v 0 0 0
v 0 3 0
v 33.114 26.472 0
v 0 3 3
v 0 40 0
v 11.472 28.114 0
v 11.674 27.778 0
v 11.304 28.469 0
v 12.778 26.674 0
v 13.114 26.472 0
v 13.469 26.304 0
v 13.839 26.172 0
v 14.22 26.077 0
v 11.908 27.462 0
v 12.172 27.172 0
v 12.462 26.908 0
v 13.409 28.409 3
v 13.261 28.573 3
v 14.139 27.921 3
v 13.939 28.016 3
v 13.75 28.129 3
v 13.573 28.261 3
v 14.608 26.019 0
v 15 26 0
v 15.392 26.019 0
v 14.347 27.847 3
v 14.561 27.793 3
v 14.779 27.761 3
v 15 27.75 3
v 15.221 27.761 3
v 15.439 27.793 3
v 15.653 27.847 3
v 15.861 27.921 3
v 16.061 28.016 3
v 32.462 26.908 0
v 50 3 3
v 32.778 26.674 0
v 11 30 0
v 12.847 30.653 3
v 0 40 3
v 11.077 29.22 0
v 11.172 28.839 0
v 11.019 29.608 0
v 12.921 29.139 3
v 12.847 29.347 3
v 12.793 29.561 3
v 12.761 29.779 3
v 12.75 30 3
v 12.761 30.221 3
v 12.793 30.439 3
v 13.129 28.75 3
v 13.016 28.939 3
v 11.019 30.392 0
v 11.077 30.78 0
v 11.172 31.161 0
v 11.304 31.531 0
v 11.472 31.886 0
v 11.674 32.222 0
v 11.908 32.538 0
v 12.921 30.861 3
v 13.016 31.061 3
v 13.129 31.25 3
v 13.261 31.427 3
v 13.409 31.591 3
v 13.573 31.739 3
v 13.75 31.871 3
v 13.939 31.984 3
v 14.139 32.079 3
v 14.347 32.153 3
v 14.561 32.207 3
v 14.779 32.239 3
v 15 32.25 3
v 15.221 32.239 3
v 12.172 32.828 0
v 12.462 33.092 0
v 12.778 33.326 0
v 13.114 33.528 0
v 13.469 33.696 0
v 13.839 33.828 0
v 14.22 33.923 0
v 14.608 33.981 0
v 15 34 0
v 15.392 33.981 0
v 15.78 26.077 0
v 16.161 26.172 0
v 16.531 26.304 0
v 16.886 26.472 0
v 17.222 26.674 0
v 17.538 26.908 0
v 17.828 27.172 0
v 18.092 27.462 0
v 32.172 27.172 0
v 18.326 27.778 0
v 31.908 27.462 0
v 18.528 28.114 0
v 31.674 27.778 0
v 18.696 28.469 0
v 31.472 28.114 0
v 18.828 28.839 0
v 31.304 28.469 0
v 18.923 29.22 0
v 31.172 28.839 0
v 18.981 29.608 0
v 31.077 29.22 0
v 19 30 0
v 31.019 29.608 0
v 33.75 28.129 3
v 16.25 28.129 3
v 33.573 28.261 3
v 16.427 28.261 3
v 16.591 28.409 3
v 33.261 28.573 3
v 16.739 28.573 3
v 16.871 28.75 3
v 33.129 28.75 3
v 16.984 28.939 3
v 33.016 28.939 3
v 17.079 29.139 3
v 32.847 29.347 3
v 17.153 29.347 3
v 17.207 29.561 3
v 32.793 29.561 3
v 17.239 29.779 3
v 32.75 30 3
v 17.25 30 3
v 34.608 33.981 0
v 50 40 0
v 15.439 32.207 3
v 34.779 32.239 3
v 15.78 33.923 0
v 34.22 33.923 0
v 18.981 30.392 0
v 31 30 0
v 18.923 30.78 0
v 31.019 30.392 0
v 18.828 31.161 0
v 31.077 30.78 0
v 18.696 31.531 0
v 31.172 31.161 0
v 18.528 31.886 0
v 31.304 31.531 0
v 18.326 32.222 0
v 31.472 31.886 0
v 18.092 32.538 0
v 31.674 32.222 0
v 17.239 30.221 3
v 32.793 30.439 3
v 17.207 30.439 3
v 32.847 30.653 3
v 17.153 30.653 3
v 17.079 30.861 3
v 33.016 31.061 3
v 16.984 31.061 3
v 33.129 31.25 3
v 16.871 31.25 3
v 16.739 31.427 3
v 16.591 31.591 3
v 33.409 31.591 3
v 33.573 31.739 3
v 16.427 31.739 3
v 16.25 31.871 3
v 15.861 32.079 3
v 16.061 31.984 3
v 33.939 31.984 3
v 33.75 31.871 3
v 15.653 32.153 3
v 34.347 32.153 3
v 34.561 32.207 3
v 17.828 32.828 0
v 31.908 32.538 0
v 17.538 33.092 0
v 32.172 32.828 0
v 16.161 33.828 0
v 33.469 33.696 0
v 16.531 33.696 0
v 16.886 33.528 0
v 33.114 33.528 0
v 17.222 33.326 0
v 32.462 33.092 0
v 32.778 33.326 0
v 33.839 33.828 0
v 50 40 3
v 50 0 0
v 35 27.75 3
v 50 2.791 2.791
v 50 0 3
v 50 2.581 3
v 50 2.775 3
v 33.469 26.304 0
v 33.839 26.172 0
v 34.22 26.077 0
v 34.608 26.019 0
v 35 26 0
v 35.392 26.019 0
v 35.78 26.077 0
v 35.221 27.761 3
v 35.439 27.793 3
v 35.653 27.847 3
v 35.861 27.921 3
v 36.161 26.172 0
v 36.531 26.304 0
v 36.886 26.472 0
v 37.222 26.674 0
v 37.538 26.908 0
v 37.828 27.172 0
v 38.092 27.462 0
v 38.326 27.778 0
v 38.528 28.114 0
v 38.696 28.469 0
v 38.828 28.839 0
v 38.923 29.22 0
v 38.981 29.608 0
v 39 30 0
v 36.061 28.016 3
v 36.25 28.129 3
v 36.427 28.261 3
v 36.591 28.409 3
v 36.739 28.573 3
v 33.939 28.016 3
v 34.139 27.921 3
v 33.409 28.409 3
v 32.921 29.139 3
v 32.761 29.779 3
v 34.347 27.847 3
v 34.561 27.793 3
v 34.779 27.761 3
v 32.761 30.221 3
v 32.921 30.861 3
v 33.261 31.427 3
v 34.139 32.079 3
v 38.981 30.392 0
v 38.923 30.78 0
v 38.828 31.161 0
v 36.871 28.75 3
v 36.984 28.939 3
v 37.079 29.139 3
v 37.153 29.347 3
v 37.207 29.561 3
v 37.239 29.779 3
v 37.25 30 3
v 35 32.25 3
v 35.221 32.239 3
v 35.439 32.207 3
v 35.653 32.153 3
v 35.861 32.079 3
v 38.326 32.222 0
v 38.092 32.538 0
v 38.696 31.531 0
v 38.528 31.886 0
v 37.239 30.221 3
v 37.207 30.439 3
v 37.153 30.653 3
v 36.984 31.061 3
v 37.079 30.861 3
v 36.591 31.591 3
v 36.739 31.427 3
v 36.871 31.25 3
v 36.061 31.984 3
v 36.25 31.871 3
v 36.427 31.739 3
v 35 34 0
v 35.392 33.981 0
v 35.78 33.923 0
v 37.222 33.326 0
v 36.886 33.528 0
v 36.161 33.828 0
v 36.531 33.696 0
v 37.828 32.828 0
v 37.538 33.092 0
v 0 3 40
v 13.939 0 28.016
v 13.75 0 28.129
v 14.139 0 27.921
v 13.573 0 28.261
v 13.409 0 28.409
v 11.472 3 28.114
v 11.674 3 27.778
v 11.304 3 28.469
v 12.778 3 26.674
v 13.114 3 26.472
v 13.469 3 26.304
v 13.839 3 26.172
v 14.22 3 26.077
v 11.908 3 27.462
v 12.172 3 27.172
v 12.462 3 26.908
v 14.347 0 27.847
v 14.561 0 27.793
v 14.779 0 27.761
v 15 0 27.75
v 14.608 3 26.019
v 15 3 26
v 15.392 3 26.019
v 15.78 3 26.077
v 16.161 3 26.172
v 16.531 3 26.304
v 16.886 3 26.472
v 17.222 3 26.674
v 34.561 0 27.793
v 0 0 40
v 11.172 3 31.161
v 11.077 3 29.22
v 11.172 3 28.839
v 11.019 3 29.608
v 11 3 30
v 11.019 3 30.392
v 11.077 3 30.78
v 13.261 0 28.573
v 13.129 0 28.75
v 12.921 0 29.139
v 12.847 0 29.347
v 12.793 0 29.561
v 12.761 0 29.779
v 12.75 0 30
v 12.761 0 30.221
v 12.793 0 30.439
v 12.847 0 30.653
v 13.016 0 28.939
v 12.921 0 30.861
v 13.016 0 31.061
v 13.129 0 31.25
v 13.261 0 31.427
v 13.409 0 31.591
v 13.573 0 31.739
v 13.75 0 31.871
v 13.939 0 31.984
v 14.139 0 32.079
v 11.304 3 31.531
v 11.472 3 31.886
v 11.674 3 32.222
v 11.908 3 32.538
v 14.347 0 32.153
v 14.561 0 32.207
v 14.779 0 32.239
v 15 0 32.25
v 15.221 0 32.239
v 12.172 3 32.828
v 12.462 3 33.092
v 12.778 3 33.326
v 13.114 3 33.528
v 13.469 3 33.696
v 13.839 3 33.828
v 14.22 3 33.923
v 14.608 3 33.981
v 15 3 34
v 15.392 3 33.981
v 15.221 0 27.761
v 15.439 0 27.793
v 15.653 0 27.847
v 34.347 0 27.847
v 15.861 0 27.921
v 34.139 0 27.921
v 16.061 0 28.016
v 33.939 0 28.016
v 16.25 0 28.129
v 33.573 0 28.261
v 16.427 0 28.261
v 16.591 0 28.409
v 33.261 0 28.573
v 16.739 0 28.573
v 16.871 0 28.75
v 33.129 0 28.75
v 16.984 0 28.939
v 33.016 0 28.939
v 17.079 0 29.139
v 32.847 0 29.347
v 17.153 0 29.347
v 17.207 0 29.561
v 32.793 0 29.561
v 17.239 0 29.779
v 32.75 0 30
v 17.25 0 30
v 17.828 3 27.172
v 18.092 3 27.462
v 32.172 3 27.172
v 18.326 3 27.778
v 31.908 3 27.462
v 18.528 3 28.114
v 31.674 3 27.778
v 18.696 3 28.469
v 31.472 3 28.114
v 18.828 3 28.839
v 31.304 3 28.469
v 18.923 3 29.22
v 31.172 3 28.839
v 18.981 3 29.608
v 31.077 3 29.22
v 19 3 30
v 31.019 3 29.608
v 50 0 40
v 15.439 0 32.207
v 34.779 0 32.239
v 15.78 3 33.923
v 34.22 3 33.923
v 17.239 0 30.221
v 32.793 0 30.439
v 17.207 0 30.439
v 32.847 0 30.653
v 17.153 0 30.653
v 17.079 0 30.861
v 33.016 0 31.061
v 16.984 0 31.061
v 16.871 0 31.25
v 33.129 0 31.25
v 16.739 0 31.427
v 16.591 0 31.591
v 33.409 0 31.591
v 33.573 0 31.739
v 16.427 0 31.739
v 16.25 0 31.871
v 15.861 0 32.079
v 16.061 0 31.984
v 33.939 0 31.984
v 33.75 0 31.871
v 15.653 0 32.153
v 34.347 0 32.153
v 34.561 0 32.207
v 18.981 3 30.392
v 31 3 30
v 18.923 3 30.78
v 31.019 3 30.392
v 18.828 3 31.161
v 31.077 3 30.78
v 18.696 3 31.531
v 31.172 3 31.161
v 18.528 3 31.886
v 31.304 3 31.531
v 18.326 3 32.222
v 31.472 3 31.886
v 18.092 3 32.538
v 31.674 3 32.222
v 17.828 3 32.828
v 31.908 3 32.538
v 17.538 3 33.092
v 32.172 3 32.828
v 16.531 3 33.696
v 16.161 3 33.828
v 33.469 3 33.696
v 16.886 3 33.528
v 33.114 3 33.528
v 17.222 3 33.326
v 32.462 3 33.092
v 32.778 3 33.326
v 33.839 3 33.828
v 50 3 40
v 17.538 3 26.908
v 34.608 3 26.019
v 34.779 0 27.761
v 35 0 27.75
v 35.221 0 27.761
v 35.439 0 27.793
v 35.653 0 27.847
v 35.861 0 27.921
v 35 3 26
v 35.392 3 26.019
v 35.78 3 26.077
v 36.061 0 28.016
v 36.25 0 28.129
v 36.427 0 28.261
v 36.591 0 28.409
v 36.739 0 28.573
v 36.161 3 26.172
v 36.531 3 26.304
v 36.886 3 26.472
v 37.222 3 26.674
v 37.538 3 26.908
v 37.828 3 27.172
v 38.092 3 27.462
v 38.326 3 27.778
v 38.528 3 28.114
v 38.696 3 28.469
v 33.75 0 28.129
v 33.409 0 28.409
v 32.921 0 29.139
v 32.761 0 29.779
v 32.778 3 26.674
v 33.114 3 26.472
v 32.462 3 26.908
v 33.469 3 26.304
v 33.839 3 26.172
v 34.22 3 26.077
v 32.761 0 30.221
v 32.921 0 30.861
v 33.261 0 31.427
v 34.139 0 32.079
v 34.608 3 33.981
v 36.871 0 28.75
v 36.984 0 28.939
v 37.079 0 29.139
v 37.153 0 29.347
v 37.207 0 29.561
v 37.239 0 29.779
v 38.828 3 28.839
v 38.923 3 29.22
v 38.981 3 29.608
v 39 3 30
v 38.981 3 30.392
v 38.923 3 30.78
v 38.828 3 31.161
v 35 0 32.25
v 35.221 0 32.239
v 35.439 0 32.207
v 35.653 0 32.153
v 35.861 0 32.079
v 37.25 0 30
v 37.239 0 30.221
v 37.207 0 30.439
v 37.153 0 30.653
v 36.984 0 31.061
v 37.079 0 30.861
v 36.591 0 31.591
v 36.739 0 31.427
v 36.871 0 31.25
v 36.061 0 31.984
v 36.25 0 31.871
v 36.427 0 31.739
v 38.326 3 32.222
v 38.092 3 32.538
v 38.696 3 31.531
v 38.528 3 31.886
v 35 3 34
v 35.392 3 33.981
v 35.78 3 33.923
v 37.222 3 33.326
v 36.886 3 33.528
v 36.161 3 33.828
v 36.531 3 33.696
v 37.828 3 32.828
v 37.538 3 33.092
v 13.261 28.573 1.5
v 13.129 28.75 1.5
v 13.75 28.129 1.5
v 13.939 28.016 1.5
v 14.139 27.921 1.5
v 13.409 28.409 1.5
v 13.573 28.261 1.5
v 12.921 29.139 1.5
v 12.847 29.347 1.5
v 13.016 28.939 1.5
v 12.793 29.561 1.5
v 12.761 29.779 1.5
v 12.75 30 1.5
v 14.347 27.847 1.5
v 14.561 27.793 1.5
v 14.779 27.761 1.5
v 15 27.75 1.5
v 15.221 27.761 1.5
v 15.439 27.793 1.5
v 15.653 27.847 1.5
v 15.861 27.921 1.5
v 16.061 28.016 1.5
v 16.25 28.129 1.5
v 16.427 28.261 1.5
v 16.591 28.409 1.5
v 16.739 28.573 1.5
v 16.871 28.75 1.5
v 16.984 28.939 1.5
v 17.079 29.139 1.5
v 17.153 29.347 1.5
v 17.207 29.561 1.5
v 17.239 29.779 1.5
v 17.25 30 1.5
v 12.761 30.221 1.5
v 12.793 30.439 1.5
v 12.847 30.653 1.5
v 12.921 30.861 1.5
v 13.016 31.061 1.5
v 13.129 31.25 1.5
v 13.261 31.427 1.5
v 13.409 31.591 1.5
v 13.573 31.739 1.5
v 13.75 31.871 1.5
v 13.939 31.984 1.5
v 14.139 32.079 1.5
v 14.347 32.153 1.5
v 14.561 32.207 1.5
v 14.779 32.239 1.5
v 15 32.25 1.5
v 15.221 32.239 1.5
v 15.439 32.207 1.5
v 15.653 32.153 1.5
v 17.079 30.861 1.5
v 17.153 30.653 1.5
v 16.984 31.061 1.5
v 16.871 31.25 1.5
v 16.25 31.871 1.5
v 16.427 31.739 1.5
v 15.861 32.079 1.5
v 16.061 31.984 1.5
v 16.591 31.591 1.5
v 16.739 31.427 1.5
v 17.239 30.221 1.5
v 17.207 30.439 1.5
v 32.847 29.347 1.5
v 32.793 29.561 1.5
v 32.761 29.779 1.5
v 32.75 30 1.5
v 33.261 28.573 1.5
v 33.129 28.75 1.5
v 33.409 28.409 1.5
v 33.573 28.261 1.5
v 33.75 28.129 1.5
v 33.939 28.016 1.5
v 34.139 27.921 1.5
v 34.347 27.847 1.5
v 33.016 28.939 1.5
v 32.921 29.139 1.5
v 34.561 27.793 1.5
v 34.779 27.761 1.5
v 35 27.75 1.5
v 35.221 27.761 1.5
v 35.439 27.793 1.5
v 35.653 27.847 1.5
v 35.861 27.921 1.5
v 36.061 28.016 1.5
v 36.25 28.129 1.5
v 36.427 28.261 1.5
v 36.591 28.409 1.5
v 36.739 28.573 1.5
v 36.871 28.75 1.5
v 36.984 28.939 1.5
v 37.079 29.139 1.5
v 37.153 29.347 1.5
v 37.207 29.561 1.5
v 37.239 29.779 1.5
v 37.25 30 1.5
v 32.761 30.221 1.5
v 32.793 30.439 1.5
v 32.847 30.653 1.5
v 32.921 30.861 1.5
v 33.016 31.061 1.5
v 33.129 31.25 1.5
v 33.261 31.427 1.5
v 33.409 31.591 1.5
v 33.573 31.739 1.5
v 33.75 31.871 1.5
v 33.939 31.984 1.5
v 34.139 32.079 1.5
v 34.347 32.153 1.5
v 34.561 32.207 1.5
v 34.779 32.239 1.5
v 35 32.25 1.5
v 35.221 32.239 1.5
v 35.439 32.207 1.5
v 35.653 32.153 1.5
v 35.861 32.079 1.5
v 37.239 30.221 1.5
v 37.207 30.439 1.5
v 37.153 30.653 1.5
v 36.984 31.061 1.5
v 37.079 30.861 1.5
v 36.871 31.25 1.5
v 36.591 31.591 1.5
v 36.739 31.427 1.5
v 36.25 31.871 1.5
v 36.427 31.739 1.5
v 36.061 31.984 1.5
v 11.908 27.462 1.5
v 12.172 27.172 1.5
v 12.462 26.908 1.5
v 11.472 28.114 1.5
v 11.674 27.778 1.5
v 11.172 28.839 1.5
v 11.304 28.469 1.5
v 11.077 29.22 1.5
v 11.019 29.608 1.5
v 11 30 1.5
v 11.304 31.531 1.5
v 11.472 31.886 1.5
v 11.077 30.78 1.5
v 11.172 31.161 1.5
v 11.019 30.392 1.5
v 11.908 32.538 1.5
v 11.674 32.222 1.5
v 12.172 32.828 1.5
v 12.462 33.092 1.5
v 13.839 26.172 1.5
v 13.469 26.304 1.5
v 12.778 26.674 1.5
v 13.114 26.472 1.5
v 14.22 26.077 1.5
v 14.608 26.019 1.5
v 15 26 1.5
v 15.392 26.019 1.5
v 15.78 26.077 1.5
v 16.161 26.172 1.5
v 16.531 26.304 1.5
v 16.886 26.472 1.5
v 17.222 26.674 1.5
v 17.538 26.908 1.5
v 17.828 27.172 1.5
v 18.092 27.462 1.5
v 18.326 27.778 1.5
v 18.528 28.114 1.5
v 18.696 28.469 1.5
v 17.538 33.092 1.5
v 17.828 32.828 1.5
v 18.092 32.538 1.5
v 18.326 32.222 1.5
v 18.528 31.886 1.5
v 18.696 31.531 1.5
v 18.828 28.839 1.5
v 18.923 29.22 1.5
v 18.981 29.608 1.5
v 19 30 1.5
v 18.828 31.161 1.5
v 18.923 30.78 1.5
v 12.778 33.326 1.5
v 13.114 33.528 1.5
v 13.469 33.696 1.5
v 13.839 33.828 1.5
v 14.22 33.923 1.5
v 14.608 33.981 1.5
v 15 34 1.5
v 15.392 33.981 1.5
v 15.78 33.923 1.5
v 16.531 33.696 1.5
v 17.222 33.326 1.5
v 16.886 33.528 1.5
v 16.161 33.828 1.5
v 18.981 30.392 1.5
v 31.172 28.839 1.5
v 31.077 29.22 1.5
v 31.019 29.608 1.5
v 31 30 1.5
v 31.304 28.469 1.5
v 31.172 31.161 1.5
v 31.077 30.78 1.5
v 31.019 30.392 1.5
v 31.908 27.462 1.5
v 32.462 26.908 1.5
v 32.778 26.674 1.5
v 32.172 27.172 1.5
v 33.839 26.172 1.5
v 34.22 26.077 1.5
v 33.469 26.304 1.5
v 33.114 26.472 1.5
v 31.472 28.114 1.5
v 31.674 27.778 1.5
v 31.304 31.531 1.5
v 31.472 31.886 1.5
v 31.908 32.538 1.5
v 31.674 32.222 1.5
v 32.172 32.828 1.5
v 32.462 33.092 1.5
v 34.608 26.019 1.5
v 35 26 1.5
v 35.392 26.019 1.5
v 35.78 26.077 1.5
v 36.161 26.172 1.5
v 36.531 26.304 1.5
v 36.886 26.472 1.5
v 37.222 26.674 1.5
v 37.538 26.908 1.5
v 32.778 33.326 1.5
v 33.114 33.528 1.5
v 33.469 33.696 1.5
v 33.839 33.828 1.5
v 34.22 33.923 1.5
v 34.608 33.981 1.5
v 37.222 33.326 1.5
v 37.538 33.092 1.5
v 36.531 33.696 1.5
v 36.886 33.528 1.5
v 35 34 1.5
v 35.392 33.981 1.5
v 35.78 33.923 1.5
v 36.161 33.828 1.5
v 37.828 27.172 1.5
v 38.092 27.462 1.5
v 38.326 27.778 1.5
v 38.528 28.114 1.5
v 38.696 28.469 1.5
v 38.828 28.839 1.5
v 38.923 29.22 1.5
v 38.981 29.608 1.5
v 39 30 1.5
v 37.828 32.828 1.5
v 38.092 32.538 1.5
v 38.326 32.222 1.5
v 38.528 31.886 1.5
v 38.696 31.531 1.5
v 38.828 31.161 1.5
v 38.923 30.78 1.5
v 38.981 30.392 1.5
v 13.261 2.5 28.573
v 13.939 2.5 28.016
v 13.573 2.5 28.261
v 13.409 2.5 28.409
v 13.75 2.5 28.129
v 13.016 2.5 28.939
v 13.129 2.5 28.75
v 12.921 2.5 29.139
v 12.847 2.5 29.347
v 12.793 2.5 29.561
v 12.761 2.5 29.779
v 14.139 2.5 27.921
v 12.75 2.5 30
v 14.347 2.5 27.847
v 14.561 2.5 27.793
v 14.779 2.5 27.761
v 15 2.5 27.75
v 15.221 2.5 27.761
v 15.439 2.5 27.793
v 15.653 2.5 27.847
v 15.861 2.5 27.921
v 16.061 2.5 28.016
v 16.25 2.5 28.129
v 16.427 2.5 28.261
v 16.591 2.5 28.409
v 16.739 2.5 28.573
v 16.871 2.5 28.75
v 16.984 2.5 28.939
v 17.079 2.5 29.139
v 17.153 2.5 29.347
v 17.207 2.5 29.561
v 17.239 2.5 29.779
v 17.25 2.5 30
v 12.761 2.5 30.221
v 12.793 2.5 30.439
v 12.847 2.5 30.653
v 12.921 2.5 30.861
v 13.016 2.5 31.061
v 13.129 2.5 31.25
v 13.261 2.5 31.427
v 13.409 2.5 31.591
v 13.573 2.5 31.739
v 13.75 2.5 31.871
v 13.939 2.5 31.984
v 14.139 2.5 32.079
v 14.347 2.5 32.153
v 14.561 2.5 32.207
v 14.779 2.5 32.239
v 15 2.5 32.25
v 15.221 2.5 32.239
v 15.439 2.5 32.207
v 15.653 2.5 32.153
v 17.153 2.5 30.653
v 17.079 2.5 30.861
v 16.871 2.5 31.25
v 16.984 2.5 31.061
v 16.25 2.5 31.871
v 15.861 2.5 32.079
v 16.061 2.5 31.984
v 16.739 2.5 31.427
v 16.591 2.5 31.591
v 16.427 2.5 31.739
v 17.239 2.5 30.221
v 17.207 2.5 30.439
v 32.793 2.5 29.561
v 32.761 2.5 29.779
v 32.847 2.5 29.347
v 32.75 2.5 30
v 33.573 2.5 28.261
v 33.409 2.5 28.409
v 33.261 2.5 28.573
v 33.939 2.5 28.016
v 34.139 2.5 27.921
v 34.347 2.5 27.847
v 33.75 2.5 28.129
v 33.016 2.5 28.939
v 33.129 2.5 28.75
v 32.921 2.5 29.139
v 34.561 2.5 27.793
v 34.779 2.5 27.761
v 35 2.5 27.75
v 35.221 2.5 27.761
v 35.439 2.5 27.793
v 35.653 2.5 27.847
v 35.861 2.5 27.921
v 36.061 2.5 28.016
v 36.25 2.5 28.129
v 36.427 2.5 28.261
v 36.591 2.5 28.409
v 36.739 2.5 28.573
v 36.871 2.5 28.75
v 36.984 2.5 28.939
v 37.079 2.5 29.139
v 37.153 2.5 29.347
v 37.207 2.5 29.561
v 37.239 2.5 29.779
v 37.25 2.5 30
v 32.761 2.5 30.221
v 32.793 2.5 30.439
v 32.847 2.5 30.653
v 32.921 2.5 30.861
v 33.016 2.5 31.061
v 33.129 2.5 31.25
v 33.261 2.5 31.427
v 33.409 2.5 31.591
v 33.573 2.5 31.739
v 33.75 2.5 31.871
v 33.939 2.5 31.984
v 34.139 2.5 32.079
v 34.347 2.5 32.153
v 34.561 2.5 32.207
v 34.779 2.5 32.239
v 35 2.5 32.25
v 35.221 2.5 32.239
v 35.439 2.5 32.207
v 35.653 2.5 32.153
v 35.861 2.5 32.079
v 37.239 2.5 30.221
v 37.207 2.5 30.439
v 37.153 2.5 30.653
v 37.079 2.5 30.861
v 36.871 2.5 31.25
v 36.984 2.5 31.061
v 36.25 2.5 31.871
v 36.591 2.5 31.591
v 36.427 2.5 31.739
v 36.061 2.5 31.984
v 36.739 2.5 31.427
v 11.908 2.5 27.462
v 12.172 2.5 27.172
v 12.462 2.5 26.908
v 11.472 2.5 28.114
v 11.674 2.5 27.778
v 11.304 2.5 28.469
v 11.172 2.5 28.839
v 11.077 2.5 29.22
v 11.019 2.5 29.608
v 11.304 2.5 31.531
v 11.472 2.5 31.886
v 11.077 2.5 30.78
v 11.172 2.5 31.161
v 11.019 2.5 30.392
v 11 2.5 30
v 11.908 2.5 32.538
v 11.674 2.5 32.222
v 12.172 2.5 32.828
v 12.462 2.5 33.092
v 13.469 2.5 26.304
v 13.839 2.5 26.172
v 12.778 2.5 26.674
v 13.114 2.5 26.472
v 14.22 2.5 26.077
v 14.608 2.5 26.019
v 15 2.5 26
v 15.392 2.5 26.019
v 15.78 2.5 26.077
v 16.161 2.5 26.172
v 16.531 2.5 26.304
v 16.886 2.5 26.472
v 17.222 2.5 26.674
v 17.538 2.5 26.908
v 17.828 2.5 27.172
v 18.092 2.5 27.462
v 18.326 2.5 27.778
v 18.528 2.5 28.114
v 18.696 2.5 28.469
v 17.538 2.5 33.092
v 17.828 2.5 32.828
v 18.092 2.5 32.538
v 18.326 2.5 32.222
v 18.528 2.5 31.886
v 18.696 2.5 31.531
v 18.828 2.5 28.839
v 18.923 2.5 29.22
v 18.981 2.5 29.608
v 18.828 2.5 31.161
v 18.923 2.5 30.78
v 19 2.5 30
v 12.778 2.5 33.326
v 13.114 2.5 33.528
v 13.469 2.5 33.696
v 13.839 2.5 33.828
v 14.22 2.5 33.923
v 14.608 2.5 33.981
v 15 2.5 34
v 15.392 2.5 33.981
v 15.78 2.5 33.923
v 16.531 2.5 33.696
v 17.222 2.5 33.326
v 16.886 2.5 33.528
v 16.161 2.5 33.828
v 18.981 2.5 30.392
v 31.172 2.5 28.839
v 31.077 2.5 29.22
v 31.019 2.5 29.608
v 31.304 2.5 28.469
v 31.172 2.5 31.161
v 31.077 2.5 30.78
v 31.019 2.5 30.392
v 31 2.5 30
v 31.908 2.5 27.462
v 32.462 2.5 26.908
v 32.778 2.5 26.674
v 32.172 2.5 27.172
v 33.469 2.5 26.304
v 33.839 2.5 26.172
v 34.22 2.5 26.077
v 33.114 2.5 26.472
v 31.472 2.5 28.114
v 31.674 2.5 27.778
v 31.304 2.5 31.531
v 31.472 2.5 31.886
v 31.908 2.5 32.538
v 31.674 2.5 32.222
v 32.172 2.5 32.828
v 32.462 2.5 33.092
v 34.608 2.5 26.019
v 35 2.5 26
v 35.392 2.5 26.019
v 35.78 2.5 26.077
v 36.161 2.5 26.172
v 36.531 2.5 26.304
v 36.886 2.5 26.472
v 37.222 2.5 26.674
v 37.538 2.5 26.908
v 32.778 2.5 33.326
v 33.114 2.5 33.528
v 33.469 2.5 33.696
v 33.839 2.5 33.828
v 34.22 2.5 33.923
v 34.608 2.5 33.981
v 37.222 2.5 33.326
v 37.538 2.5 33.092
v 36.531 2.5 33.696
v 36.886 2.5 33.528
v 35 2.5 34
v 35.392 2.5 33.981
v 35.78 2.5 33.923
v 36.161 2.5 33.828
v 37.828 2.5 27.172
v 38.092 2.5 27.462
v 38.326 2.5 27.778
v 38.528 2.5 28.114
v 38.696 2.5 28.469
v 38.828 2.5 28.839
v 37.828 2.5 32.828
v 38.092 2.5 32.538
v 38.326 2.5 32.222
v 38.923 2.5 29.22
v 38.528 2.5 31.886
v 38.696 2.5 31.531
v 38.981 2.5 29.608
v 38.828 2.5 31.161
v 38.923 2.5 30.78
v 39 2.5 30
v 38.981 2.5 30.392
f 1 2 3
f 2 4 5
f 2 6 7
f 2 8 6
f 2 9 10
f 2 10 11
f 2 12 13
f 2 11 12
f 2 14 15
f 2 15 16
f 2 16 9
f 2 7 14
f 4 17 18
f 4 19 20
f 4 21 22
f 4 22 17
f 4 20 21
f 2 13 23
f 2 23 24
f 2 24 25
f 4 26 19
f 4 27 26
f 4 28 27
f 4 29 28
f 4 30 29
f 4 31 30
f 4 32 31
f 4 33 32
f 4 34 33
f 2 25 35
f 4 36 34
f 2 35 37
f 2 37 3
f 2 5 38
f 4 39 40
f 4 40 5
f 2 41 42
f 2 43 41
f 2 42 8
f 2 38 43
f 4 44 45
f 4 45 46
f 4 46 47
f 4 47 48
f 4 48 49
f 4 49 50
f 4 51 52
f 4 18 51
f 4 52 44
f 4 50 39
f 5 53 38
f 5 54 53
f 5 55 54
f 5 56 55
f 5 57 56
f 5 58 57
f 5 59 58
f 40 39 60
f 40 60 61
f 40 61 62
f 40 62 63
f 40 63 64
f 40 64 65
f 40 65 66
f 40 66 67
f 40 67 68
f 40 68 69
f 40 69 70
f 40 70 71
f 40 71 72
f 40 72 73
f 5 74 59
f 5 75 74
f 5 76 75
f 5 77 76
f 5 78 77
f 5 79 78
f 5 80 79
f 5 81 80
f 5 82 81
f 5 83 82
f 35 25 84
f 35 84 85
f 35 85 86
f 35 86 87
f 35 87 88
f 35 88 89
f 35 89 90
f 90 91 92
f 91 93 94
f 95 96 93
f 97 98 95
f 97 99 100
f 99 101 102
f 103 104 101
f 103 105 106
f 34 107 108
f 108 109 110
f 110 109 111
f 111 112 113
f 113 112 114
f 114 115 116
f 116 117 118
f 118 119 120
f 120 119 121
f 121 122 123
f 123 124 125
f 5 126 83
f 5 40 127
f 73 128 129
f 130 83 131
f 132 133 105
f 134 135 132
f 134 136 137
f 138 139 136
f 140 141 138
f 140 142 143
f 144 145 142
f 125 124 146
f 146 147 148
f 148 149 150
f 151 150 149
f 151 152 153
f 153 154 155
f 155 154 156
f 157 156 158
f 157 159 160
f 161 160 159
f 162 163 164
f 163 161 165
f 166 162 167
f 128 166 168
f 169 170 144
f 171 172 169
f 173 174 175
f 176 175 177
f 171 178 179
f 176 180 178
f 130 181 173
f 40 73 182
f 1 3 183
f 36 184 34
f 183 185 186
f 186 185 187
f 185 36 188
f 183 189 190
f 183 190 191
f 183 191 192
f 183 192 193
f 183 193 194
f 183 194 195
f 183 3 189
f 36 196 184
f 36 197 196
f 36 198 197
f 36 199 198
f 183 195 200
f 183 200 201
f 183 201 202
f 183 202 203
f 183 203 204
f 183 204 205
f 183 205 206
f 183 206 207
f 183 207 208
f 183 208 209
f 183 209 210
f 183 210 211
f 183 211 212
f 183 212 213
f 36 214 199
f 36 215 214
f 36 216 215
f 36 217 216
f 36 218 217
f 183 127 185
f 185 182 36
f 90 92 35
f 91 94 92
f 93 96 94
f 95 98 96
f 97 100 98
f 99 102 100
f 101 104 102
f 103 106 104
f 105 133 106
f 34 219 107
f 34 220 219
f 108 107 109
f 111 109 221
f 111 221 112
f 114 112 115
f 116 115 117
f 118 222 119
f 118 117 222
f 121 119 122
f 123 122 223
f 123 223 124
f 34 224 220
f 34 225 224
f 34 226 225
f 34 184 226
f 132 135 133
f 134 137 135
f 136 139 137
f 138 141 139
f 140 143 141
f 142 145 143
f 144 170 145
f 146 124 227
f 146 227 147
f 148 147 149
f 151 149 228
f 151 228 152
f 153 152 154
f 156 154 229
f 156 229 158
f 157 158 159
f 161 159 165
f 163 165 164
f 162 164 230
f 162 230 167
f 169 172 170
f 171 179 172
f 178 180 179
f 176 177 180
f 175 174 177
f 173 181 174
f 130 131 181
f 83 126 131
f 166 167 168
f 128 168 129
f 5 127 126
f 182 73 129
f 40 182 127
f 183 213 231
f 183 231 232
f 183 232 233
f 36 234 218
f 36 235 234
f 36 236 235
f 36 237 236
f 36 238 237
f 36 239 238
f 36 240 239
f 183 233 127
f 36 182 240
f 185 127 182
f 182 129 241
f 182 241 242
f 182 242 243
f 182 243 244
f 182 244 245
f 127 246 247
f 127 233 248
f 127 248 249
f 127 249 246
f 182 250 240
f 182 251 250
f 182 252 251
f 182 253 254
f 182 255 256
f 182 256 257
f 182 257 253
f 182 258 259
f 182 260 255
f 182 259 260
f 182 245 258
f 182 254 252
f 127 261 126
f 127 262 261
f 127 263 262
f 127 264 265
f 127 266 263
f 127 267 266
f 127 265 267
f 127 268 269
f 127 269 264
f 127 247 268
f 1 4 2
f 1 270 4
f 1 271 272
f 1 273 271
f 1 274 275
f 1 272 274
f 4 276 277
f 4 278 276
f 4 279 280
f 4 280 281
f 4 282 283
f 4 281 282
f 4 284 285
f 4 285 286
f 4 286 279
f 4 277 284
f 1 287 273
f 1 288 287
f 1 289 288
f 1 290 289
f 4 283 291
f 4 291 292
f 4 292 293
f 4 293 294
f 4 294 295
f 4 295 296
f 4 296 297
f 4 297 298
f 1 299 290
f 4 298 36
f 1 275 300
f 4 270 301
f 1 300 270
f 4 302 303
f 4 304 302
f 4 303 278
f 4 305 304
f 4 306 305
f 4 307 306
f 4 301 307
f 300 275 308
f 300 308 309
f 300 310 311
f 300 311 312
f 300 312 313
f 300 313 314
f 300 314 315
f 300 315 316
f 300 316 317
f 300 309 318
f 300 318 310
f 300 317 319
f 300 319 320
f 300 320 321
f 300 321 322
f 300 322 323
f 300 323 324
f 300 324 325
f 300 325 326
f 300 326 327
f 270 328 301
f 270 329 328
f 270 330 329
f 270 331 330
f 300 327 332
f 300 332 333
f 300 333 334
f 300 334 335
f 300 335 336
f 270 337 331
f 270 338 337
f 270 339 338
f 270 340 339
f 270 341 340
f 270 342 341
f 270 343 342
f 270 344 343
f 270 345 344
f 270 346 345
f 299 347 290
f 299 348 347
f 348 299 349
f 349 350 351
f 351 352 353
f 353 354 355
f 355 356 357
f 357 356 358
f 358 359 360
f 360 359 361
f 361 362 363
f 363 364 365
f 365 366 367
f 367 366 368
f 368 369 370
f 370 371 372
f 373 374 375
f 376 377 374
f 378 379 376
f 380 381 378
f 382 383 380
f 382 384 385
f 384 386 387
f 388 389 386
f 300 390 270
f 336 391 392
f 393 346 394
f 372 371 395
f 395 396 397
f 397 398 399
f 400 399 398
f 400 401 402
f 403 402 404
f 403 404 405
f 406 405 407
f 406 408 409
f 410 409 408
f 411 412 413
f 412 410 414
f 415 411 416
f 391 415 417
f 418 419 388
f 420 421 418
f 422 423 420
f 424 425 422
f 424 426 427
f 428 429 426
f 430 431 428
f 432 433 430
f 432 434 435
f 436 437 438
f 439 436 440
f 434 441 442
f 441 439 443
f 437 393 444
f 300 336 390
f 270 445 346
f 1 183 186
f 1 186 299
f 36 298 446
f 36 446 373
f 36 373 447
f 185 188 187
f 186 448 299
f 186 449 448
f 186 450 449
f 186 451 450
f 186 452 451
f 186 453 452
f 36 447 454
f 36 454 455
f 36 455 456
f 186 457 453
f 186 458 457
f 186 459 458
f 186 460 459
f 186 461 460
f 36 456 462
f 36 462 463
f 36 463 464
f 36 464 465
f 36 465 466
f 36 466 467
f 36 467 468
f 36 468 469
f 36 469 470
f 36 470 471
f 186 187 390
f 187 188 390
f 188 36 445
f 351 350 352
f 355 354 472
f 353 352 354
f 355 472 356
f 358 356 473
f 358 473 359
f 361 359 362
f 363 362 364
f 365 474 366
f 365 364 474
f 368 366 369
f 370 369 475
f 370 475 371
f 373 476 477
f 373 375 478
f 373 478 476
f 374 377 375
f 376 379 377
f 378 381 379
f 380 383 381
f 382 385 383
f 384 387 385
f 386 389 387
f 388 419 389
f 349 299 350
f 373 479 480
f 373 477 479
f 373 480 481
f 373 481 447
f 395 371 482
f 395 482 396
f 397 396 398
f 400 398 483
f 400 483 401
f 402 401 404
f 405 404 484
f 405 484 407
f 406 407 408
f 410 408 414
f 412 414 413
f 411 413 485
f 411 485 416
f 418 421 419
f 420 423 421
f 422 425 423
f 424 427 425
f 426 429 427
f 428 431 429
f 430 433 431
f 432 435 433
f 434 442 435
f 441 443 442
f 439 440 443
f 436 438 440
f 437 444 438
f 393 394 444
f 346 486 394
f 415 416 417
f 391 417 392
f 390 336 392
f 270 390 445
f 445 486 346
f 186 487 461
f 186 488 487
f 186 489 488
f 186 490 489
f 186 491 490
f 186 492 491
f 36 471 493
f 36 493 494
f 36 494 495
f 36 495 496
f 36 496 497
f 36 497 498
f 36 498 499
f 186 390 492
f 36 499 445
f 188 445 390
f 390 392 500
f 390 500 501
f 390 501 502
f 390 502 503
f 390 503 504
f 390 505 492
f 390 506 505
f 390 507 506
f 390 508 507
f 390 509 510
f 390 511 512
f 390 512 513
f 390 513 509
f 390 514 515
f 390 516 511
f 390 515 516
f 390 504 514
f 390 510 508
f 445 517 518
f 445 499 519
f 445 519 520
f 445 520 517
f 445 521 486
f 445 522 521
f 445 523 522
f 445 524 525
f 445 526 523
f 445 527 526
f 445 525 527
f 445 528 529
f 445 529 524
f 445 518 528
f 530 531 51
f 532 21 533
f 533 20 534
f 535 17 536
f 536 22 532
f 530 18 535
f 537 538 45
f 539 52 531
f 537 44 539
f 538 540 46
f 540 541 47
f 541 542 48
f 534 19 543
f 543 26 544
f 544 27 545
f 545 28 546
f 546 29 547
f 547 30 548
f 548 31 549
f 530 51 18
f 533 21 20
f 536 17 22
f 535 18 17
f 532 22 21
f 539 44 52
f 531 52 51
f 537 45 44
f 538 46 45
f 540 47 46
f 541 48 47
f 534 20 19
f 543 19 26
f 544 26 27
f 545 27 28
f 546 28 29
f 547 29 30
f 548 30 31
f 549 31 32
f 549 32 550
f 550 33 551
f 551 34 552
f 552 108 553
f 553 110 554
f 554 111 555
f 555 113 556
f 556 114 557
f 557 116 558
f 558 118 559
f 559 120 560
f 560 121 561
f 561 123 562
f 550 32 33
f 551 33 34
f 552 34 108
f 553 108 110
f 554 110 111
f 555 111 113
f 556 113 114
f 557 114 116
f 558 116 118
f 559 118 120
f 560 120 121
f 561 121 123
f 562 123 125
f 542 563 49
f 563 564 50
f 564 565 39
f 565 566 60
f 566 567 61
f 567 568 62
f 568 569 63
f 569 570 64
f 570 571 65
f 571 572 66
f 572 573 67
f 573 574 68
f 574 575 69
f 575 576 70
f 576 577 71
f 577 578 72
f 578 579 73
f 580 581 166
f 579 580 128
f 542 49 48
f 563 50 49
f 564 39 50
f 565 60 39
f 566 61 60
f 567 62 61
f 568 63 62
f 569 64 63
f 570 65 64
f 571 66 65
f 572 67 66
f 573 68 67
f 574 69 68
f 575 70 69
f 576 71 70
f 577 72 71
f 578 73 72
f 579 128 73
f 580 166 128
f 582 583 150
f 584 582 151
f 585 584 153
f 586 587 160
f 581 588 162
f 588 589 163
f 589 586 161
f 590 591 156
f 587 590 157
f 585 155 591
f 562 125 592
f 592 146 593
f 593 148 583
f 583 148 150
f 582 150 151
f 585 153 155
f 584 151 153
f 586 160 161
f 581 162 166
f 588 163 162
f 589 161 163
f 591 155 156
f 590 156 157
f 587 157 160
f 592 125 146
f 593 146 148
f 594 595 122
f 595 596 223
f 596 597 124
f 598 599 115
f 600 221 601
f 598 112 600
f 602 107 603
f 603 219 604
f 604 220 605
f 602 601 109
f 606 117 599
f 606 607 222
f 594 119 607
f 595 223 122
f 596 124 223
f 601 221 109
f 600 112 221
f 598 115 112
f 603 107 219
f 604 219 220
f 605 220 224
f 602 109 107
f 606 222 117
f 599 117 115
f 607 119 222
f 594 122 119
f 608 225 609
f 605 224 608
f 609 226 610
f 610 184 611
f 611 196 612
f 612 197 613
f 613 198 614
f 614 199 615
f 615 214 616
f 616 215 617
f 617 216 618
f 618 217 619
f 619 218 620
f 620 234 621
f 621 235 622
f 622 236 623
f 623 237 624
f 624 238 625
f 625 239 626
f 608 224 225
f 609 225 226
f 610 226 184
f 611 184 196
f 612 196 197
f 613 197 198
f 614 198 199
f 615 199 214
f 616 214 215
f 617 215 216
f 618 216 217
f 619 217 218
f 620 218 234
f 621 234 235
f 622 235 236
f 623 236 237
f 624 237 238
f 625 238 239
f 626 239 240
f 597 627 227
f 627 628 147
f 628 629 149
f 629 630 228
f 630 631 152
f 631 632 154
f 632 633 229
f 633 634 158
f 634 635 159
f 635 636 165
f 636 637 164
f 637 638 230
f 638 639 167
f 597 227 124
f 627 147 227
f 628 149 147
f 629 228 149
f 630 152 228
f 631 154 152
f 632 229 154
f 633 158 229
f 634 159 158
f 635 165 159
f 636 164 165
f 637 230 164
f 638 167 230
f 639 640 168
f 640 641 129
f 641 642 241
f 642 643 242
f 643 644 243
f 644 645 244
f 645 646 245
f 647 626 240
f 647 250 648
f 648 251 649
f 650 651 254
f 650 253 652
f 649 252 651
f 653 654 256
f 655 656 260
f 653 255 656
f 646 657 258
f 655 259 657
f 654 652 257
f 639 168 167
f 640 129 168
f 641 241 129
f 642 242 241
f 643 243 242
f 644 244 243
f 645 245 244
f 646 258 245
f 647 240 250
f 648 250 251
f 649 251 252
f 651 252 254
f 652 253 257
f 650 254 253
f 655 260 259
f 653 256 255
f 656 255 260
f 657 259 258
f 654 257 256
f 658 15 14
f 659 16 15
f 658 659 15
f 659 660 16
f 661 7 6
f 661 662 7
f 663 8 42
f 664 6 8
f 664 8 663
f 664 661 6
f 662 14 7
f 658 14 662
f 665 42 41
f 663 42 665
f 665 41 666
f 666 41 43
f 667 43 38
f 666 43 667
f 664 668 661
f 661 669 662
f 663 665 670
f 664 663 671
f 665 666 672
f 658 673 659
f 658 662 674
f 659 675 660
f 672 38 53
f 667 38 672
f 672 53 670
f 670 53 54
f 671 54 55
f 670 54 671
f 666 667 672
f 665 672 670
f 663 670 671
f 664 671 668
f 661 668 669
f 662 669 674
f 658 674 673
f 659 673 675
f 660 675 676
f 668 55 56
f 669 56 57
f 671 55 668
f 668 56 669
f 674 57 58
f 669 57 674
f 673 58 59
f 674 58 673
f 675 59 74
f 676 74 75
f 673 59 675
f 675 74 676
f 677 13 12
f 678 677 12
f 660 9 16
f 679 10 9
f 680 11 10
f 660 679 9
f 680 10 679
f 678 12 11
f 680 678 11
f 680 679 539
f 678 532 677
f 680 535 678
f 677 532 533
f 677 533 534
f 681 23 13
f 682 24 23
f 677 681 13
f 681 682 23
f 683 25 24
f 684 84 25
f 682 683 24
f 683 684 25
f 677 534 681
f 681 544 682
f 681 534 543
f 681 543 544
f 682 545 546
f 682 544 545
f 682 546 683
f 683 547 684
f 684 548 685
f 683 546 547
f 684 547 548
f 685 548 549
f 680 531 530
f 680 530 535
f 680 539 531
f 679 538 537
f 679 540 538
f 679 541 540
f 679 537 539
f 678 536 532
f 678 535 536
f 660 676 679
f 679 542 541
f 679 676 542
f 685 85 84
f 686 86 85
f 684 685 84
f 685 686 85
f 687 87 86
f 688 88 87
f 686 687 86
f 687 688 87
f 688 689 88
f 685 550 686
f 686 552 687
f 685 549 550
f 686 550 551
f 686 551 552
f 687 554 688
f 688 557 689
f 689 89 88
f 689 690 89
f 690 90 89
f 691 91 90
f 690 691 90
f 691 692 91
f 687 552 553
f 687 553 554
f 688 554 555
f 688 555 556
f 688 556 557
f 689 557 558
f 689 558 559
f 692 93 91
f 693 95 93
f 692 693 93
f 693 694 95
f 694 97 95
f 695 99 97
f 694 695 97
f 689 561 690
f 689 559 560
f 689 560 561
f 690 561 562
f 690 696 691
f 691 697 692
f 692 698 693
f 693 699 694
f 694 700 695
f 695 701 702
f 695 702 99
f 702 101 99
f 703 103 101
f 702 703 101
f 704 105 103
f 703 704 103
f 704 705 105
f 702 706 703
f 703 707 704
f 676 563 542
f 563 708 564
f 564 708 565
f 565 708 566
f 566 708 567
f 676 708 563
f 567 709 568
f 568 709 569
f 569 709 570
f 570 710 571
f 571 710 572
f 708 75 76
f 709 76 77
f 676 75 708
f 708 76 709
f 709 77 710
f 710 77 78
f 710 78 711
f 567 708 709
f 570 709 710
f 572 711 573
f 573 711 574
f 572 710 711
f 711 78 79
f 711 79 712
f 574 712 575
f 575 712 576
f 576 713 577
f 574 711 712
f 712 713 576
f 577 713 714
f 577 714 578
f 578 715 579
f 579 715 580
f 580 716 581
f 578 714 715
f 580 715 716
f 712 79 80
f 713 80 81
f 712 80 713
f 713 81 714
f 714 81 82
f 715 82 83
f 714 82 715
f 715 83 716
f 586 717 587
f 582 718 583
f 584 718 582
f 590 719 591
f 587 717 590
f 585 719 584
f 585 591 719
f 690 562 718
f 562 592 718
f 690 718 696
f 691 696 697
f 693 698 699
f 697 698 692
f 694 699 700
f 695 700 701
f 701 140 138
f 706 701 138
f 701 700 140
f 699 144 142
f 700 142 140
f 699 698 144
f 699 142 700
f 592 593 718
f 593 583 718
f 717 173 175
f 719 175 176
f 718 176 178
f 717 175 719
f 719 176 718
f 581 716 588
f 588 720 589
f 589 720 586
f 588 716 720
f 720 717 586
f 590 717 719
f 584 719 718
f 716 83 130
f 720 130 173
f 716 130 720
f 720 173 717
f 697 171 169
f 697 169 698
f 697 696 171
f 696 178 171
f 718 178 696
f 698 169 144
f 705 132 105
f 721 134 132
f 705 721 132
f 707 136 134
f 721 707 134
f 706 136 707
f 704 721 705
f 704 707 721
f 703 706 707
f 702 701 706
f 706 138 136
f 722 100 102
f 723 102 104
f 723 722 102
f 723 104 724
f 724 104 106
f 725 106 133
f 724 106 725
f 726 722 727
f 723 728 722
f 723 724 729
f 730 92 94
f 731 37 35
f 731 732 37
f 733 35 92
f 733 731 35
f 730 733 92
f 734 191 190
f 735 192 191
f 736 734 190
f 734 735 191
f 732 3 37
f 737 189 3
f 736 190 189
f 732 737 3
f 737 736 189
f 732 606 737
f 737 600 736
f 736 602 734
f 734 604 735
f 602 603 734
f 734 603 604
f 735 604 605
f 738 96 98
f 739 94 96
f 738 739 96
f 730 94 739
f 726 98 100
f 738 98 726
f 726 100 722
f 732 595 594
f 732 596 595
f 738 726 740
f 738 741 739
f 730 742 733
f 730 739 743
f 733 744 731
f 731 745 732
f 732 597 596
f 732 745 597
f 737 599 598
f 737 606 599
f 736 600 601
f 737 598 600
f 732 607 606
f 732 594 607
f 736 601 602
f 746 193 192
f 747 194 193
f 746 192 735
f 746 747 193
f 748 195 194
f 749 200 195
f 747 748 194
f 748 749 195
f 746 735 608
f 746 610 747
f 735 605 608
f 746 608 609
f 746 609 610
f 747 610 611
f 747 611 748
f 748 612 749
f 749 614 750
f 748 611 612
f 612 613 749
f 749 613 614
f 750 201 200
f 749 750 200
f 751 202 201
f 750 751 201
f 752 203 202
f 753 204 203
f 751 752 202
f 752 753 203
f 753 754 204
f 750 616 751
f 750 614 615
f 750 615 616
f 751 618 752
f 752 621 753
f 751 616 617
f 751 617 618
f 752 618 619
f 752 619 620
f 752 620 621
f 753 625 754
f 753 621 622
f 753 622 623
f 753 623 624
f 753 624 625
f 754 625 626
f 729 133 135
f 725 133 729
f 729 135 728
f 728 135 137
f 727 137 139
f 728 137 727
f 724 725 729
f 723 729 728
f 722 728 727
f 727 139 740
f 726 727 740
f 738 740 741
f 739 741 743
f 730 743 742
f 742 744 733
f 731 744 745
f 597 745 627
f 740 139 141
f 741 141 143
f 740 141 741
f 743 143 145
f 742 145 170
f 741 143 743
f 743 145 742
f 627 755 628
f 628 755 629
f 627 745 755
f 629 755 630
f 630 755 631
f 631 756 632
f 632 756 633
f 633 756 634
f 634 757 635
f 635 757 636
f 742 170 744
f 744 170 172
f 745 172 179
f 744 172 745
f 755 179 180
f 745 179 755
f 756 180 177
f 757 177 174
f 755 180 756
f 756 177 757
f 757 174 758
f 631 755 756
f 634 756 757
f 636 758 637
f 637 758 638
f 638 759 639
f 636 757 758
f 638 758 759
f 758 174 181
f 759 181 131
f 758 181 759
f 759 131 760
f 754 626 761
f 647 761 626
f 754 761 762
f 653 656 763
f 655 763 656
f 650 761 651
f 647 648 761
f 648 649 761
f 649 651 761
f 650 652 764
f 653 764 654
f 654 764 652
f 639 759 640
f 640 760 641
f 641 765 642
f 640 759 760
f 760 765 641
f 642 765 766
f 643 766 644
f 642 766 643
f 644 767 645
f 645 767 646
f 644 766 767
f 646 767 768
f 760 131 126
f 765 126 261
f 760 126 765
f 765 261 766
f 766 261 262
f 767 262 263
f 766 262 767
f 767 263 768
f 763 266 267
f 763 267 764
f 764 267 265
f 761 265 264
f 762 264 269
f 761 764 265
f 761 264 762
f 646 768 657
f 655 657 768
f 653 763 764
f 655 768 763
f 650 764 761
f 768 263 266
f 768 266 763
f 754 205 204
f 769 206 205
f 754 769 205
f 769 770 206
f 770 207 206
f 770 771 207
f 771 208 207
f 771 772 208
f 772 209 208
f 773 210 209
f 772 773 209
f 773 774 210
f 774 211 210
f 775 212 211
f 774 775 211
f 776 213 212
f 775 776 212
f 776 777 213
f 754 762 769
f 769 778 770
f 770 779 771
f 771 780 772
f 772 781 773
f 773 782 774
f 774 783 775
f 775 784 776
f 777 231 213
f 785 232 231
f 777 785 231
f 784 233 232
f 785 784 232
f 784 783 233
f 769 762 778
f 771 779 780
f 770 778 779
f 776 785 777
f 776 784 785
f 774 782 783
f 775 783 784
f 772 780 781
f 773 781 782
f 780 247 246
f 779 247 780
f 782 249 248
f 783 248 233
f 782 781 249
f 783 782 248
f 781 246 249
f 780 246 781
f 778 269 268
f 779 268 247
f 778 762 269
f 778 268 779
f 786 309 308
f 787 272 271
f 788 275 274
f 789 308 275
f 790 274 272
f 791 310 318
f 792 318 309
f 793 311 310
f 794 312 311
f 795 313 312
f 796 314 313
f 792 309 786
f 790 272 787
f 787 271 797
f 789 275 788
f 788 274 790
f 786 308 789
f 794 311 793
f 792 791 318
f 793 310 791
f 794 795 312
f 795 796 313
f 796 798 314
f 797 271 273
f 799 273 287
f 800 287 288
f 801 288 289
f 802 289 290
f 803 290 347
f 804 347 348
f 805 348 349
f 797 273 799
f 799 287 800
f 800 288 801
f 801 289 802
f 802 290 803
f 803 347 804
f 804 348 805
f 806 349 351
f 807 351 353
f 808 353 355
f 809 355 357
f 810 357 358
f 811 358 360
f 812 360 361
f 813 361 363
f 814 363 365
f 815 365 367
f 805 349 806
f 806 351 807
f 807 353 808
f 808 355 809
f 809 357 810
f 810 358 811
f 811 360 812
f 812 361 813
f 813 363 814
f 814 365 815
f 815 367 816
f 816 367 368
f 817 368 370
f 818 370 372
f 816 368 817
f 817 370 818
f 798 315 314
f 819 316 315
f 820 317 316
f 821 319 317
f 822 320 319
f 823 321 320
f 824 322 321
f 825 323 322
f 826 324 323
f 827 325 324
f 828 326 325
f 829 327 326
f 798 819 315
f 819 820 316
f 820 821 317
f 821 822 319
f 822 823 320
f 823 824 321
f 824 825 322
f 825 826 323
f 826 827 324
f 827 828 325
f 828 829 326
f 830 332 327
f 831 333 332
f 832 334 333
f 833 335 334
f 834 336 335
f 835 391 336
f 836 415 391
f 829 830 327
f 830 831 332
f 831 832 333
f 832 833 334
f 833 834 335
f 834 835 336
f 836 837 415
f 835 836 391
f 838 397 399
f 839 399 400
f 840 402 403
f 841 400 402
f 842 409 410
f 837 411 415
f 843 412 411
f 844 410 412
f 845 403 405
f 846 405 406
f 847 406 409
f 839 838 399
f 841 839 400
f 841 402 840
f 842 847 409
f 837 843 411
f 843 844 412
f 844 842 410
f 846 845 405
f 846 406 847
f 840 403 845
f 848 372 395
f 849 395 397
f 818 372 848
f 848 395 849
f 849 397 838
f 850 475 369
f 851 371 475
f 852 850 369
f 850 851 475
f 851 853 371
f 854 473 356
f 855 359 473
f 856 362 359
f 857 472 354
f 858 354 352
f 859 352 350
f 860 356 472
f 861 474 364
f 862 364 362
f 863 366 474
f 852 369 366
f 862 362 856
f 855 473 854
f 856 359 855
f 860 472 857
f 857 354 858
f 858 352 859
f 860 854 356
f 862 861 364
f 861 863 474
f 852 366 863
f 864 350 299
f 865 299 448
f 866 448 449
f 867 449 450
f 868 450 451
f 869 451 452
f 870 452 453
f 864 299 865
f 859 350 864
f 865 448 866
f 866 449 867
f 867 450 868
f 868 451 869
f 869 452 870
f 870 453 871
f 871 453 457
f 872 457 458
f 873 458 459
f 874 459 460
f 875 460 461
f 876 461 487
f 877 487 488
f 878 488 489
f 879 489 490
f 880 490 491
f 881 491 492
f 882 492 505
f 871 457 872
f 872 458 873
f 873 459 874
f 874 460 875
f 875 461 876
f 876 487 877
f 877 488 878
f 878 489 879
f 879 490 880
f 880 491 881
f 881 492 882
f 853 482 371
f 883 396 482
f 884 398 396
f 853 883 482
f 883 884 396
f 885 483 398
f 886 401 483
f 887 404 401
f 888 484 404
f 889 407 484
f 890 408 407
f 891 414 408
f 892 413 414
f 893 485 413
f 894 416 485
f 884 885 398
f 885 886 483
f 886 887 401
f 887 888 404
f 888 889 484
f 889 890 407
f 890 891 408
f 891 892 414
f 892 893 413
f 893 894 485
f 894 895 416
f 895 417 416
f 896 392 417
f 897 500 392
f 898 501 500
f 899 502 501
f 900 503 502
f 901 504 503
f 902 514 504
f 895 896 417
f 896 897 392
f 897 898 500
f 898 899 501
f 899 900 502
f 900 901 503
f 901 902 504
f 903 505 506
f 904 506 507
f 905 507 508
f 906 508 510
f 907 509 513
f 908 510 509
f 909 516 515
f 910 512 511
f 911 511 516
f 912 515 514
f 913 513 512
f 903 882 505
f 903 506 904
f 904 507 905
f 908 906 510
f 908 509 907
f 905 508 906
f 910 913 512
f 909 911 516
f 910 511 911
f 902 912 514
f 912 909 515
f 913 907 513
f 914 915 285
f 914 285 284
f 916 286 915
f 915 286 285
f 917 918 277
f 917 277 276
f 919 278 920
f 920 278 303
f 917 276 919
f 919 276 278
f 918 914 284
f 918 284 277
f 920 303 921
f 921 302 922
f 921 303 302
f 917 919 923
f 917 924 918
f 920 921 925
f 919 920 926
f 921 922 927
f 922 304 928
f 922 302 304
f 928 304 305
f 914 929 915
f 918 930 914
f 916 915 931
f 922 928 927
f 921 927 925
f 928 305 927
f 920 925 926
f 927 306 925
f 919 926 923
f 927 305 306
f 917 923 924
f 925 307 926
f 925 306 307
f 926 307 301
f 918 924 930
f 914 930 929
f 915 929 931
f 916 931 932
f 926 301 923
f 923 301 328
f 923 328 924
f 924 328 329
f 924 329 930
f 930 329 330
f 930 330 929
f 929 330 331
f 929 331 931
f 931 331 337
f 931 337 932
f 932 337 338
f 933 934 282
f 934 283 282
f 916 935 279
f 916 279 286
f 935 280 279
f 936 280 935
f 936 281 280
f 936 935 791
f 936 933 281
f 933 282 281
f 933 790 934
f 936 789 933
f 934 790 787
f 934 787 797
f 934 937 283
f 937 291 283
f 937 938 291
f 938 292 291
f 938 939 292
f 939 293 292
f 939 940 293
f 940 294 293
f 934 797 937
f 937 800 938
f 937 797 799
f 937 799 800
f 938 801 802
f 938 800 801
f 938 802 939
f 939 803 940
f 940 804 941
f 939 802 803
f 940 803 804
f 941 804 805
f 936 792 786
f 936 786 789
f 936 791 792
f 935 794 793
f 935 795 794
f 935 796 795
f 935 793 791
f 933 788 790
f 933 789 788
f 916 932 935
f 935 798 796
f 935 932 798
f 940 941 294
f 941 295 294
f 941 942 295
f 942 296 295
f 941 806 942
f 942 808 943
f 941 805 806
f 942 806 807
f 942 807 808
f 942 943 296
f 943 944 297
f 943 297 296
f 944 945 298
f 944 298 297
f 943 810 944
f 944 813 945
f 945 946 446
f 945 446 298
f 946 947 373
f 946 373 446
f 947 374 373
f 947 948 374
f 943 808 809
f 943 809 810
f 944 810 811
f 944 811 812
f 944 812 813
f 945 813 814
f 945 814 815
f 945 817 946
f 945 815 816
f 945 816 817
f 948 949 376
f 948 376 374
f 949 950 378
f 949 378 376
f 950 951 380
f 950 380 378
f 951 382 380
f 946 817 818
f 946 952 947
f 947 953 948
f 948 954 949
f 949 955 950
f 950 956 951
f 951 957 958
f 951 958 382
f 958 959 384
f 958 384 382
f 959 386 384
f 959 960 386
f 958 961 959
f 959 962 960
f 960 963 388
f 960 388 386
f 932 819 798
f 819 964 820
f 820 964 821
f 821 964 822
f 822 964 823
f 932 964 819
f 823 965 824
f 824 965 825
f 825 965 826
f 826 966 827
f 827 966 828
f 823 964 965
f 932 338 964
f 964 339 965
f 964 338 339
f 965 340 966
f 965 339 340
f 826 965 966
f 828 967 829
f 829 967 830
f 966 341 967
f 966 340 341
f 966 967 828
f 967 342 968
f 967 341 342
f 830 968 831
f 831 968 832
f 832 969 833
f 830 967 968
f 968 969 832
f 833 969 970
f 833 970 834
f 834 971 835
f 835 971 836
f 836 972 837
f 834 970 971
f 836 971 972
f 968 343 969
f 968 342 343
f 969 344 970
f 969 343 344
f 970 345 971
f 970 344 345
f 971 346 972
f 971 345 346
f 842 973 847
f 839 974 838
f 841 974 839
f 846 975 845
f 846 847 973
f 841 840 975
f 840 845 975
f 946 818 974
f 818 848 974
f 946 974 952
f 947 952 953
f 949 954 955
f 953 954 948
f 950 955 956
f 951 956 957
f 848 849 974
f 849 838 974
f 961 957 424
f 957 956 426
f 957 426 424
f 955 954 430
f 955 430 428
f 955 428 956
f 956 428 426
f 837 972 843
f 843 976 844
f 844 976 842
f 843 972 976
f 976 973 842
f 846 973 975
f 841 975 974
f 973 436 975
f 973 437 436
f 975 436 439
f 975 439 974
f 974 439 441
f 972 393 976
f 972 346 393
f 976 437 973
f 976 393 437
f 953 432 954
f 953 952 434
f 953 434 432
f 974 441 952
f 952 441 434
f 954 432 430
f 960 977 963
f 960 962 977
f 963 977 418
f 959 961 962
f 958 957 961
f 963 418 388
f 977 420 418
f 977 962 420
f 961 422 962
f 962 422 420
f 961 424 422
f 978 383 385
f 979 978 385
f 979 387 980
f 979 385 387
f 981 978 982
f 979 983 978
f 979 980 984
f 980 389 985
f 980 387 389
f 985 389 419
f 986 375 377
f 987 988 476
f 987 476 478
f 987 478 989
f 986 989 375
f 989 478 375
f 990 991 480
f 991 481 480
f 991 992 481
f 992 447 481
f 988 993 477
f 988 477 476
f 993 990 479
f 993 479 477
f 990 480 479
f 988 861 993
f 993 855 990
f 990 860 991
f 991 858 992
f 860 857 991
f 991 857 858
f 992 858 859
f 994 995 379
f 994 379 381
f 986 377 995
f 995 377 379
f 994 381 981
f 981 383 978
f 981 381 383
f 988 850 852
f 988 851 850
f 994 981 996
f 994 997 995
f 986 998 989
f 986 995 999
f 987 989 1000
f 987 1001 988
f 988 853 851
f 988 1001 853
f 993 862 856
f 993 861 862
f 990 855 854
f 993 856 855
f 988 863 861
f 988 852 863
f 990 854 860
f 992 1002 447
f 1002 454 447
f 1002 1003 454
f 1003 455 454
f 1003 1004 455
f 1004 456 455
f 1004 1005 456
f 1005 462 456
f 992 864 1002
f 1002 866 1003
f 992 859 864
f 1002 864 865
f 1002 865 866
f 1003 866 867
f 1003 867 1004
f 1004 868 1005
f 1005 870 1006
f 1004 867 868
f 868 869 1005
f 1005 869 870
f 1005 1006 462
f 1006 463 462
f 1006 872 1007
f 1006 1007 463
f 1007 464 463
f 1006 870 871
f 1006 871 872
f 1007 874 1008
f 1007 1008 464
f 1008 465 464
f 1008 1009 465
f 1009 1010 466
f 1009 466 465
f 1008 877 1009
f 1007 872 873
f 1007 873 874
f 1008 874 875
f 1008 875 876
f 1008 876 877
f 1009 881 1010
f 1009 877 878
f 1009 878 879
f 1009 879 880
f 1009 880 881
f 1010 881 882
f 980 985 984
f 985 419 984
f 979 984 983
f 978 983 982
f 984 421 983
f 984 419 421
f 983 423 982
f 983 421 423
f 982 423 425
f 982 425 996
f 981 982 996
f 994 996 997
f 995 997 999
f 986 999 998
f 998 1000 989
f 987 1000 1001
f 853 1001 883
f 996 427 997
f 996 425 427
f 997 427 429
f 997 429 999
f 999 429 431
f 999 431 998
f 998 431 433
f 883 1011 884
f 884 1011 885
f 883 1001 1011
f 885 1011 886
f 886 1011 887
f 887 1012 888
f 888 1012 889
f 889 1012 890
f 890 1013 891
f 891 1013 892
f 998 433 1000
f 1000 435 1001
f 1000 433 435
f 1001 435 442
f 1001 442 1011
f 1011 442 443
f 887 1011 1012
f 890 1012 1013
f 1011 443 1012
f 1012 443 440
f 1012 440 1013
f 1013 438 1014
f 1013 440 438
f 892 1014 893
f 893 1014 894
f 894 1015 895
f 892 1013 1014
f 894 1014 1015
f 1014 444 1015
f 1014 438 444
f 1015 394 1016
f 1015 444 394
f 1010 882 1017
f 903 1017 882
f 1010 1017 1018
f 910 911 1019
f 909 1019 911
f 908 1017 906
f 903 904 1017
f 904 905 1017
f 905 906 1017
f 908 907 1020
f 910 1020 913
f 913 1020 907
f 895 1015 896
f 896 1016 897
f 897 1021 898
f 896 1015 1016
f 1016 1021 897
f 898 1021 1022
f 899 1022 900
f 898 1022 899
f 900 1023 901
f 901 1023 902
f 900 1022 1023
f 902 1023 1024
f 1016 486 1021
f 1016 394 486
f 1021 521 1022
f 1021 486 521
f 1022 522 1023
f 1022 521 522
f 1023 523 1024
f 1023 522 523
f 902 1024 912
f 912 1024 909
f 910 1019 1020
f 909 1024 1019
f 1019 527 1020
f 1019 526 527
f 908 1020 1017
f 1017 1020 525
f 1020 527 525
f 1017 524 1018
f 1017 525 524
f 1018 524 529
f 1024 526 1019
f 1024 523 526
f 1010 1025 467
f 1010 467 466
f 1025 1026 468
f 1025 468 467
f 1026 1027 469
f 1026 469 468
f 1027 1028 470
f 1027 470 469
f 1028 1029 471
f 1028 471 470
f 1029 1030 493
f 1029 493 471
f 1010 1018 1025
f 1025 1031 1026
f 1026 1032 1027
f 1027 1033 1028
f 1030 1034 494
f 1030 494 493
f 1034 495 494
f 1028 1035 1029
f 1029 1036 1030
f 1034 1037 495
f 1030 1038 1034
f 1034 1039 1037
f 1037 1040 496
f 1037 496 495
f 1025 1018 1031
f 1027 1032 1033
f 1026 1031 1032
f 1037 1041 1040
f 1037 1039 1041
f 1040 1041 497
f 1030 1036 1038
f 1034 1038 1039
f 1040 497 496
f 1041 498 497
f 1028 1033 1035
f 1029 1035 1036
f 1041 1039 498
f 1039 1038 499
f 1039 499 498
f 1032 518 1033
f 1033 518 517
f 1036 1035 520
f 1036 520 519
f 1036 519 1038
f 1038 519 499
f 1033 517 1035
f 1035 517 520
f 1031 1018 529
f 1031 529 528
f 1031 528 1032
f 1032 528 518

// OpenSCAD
// パラメータ設定
width = 50;
depth = 40;
height = 40;
thickness = 3;

hole_dia = 4.5;
cs_dia = 8.0;
cs_depth = 2.0;

// 皿穴モジュール
// 皿座面が常に外側（プレートの上面または背面）に来るように調整
module countersunk_hole(is_vertical = false) {
    union() {
        // 貫通穴
        cylinder(d = hole_dia, h = thickness * 2, center = true);
        // 皿座面
        translate([0, 0, is_vertical ? -thickness/2 + cs_depth/2 : thickness/2 - cs_depth/2])
            cylinder(d = cs_dia, h = cs_depth, center = true, $fn = 64);
    }
}

module l_bracket() {
    difference() {
        union() {
            // 水平面 (Y方向に40mm)
            cube([width, depth, thickness]);
            // 垂直面 (Z方向に40mm)
            cube([width, thickness, height]);
        }

        // 水平面の穴（上面から掘る）
        // 縁(Y=40)から10mm内側 = Y=30
        for (x = [-10, 10]) {
            translate([width / 2 + x, 30, 0])
                countersunk_hole(is_vertical = false);
        }

        // 垂直面の穴（背面から掘る）
        // 縁(Z=40)から10mm内側 = Z=30
        for (x = [-10, 10]) {
            translate([width / 2 + x, thickness, 30])
                rotate([90, 0, 0])
                    countersunk_hole(is_vertical = true);
        }
    }
}

$fn = 64;
l_bracket();
